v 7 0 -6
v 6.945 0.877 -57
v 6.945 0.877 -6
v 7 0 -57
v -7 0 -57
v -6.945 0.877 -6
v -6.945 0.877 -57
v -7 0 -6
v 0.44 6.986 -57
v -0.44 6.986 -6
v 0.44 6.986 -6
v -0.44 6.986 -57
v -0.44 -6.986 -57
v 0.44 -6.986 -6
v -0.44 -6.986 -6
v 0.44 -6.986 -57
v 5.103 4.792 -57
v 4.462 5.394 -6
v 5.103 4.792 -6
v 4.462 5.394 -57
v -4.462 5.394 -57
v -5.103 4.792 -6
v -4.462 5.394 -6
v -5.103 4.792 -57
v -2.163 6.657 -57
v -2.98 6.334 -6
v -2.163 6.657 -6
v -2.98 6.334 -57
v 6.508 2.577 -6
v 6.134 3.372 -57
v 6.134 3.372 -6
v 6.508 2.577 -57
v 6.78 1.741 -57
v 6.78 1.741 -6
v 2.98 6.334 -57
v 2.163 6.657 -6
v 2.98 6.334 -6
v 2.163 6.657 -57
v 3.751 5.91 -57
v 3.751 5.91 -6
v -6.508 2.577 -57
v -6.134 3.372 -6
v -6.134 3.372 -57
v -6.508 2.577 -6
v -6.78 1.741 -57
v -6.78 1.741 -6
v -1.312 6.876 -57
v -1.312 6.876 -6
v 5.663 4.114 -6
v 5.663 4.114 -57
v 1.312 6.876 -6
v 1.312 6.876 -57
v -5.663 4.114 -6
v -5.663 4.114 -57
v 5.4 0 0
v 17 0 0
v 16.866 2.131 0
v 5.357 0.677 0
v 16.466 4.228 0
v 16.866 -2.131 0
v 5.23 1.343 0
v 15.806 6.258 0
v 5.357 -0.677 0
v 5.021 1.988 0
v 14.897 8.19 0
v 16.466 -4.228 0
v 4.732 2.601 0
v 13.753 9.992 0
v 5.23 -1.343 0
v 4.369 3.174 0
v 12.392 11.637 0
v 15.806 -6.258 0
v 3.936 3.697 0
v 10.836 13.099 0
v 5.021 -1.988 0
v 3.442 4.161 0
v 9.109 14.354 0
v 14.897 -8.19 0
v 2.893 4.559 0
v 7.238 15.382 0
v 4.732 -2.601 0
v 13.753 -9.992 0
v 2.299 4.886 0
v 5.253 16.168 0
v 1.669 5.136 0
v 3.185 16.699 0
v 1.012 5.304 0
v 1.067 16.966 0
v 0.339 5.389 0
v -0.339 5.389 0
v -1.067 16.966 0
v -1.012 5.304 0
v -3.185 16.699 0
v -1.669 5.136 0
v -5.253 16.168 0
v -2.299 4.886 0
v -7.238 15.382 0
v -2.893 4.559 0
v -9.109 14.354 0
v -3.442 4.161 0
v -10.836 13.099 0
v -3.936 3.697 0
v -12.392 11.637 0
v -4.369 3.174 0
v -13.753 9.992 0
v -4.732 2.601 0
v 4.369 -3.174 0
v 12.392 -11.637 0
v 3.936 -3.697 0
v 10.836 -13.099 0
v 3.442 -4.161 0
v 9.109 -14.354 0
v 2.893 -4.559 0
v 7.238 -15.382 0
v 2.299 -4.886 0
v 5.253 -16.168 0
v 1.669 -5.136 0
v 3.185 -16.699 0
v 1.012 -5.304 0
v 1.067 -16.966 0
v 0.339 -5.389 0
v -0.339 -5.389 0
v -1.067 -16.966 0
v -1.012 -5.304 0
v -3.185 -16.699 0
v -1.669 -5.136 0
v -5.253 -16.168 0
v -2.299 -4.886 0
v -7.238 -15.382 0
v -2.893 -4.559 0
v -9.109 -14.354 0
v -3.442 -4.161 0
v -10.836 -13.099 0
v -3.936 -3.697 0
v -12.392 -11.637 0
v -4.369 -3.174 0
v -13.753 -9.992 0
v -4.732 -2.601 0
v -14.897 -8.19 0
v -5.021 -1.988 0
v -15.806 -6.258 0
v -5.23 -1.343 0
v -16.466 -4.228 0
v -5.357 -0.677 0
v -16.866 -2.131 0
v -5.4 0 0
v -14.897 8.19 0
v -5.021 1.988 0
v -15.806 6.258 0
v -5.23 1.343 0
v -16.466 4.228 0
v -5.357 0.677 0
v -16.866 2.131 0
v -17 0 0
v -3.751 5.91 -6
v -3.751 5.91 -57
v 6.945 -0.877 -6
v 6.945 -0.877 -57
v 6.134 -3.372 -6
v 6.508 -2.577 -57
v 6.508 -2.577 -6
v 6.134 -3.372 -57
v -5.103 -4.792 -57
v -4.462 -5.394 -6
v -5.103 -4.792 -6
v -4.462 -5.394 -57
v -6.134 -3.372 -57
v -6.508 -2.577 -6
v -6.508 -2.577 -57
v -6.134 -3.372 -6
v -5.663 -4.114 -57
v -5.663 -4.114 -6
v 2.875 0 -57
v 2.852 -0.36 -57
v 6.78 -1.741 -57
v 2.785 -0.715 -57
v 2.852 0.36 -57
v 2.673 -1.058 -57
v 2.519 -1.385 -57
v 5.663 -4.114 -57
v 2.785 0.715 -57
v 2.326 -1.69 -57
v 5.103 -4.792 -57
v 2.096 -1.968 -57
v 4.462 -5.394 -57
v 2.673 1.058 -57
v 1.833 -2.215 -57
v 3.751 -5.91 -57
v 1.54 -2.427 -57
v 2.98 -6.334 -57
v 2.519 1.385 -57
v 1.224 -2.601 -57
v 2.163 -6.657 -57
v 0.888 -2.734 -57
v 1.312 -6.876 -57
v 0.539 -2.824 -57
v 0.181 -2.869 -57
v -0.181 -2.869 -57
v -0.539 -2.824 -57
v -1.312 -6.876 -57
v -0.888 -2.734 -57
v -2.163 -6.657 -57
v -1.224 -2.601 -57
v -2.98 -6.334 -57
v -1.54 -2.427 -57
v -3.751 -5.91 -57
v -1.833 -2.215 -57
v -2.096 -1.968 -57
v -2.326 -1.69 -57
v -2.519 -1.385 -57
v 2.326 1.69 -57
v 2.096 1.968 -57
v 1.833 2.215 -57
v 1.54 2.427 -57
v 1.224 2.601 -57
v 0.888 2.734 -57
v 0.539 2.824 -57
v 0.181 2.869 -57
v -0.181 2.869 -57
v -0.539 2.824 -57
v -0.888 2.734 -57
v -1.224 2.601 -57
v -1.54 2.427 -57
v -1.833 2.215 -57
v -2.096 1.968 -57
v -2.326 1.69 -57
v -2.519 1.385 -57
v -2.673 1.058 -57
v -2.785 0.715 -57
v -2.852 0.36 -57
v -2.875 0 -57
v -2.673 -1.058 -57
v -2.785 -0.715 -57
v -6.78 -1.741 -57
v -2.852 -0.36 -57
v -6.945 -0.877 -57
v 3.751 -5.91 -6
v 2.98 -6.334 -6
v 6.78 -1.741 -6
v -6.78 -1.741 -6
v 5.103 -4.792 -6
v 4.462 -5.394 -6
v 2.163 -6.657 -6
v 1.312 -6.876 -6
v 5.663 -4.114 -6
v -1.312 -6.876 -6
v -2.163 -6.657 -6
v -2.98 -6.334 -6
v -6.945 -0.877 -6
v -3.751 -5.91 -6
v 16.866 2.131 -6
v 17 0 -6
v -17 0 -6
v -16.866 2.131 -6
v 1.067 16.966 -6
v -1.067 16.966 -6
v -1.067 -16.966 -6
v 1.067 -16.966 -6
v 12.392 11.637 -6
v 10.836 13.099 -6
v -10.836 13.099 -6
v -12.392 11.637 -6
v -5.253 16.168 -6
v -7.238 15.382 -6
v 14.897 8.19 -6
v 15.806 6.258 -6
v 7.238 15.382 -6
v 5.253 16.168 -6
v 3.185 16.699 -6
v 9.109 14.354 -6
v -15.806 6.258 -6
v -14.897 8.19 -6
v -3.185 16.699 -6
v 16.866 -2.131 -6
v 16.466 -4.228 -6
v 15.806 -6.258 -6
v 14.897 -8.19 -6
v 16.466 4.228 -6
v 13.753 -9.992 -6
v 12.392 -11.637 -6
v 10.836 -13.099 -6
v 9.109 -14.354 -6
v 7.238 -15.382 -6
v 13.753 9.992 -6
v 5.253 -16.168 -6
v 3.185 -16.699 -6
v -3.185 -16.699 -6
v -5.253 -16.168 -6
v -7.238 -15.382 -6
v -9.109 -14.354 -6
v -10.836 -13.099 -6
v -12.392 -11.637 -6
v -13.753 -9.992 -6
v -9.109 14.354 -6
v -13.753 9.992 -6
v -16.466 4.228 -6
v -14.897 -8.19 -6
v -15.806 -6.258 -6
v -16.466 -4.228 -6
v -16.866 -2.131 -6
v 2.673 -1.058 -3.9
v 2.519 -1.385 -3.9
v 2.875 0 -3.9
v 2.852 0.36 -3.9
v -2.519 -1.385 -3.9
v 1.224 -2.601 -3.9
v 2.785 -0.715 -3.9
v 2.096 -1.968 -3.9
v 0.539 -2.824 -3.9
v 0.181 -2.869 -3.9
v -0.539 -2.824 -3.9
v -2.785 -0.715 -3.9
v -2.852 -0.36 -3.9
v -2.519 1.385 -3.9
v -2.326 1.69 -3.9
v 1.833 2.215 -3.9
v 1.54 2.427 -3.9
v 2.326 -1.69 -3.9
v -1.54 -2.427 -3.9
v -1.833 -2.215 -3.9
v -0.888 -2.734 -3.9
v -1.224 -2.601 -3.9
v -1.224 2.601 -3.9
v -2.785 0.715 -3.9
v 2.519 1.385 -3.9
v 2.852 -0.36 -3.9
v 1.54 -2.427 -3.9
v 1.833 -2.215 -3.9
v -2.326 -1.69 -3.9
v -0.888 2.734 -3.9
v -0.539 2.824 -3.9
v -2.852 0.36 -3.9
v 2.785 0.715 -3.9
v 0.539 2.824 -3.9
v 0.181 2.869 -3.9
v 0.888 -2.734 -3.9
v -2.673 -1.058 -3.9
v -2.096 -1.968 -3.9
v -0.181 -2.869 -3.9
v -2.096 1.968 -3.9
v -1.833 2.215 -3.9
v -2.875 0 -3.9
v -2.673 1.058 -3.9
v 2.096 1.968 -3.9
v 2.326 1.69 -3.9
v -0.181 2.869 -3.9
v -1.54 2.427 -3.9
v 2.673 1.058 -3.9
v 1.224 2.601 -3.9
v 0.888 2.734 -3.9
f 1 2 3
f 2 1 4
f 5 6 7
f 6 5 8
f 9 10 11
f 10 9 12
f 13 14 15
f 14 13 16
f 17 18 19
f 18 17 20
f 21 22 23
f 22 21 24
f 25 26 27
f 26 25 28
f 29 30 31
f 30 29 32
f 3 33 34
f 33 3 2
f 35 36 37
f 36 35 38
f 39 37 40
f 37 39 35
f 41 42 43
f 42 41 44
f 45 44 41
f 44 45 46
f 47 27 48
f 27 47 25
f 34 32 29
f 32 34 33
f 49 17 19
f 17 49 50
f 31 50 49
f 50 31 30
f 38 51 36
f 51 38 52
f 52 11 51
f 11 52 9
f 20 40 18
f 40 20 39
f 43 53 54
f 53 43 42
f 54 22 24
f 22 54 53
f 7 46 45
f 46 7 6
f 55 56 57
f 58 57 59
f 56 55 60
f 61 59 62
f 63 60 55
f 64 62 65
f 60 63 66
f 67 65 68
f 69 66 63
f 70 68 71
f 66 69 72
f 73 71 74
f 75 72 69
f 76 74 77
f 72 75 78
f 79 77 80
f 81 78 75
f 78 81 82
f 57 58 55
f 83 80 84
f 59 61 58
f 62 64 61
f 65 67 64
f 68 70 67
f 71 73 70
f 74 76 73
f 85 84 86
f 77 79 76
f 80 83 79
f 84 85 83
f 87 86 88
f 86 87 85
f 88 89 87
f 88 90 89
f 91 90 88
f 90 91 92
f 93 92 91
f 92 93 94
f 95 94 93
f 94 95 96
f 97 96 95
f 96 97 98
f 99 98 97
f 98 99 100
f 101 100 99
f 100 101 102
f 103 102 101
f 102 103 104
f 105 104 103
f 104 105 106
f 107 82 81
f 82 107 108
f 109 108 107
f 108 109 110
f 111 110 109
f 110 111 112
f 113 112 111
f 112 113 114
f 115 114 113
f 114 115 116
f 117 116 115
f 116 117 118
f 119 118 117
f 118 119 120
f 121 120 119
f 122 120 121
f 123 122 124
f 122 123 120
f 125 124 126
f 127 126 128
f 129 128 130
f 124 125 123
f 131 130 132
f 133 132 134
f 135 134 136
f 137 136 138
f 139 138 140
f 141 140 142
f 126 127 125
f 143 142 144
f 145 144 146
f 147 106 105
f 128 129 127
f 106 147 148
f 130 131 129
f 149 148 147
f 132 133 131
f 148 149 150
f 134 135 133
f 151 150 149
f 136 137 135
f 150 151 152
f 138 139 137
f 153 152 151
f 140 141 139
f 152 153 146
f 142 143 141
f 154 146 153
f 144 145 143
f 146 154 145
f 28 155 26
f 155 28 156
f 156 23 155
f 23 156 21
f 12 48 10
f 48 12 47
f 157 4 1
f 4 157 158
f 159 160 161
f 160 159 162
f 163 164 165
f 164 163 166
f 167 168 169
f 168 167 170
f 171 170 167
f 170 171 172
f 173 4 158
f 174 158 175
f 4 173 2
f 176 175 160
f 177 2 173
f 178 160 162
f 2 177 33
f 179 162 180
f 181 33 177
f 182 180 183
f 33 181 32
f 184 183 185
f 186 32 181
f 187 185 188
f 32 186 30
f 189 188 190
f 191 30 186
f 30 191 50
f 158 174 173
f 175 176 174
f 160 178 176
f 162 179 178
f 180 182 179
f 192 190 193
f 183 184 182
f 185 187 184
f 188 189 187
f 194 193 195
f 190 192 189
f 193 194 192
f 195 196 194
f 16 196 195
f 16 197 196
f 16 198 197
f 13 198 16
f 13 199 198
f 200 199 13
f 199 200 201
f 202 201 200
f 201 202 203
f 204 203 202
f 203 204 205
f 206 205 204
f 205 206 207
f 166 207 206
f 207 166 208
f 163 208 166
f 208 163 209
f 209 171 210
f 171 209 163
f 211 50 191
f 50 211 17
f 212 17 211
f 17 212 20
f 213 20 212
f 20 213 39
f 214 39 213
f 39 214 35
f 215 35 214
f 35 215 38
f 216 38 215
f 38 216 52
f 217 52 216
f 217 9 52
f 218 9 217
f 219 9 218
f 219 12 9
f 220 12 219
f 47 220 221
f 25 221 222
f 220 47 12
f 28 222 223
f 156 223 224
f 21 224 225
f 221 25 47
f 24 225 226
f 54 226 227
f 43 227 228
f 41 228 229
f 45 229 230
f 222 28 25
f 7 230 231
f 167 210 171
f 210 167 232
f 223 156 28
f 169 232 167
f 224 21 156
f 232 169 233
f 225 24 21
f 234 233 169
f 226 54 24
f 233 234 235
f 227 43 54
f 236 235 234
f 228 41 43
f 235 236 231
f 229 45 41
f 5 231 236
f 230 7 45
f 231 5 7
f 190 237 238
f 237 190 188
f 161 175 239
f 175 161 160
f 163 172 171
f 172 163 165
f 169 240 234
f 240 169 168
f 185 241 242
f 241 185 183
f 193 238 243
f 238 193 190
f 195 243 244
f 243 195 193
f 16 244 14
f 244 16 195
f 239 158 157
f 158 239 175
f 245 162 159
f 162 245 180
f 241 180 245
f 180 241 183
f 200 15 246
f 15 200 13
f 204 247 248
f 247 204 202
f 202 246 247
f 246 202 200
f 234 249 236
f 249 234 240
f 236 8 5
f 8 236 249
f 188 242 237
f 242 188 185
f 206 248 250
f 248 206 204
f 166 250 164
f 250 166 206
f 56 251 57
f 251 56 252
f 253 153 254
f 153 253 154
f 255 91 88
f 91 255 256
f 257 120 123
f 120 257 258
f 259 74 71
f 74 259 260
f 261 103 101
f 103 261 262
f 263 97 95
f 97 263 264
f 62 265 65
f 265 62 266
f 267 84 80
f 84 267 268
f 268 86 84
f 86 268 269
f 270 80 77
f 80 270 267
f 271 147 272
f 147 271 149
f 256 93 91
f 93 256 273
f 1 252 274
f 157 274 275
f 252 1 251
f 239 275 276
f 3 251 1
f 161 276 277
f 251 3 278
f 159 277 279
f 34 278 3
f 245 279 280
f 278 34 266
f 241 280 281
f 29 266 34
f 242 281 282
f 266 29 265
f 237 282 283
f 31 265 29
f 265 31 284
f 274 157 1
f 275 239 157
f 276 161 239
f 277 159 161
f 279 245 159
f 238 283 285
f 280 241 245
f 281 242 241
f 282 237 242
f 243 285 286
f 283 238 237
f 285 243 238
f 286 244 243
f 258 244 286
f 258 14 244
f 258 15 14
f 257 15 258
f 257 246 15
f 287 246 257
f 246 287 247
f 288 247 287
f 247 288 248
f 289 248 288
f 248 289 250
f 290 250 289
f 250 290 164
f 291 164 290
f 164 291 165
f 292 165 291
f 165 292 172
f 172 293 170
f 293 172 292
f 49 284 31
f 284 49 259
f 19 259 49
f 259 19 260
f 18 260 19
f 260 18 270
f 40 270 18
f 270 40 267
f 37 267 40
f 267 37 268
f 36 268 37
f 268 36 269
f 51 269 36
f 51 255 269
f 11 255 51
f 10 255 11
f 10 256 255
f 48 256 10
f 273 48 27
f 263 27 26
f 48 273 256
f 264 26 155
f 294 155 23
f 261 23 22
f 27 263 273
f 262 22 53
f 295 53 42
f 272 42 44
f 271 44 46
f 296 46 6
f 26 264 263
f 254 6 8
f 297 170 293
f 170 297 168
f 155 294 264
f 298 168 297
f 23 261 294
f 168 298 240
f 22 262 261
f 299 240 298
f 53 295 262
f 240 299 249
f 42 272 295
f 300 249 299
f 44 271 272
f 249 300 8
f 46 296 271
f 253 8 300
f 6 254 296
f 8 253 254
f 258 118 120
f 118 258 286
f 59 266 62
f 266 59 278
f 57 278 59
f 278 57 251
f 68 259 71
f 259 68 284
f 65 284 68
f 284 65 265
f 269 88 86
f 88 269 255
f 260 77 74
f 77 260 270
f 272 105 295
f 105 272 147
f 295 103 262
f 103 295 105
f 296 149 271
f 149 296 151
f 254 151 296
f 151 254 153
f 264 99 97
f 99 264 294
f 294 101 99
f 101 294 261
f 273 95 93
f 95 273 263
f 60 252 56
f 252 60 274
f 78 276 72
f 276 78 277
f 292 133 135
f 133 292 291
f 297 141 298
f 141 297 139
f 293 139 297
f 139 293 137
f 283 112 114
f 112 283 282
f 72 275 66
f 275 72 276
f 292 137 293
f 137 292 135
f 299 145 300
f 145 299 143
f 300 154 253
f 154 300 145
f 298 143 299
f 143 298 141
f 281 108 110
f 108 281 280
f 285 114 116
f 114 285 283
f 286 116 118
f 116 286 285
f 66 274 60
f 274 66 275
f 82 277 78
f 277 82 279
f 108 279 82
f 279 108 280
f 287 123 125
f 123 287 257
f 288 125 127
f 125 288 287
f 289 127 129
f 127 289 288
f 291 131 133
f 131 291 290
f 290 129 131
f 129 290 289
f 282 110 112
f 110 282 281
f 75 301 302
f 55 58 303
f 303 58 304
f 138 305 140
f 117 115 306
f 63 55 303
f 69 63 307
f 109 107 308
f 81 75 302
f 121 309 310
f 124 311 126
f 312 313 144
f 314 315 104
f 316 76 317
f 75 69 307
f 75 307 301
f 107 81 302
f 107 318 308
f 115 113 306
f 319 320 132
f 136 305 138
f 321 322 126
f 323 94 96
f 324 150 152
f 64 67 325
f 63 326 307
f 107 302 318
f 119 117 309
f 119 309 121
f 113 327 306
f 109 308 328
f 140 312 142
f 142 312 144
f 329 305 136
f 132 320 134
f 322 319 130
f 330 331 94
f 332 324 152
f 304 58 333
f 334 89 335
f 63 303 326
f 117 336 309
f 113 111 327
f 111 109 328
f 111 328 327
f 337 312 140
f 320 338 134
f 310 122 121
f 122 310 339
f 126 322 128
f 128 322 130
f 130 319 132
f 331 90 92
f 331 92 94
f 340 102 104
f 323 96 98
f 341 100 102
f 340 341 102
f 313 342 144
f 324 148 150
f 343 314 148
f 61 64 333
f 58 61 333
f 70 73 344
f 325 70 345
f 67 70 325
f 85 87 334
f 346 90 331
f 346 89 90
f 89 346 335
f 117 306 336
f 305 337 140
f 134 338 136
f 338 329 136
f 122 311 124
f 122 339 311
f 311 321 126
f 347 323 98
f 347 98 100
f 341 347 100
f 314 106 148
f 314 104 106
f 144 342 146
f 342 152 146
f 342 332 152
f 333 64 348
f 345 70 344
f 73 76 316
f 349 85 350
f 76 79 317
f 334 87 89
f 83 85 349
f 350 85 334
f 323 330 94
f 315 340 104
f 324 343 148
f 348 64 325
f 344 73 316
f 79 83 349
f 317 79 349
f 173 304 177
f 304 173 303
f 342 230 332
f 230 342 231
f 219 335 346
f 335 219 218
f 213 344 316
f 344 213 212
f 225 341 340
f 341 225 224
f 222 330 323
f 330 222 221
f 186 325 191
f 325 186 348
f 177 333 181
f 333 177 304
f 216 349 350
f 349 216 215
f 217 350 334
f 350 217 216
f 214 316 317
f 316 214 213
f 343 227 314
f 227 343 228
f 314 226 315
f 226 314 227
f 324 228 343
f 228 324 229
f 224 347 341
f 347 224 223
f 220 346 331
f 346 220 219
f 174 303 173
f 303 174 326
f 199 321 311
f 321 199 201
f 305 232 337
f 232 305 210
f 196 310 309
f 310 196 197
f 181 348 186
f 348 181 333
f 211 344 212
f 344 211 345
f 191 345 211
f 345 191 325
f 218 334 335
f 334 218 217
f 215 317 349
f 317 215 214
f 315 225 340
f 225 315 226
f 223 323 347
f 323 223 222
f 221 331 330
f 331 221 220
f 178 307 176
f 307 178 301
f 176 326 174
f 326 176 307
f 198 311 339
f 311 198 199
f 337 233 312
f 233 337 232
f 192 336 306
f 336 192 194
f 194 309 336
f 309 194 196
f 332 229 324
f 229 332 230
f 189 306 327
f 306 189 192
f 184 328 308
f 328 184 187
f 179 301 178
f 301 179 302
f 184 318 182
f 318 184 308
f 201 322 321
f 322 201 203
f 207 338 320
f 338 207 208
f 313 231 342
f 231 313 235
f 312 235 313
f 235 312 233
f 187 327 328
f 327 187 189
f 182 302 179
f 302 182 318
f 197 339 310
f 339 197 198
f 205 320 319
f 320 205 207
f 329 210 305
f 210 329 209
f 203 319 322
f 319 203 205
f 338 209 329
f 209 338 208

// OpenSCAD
$fn = 50;


difference() {
	union() {
		translate(v = [0, 0, -57.0000000000]) {
			cylinder(h = 57, r = 7.0000000000);
		}
		translate(v = [0, 0, -6.0000000000]) {
			cylinder(h = 6, r = 17.0000000000);
		}
	}
	union() {
		translate(v = [0, 0, 0]) {
			rotate(a = [0, 0, 0]) {
				difference() {
					union() {
						#translate(v = [0, 0, -57.0000000000]) {
							cylinder(h = 57, r = 2.6000000000);
						}
						#translate(v = [0, 0, -3.9000000000]) {
							cylinder(h = 3.9000000000, r1 = 2.8750000000, r2 = 5.4000000000);
						}
						#translate(v = [0, 0, -57.0000000000]) {
							cylinder(h = 57, r = 2.8750000000);
						}
						#translate(v = [0, 0, -57.0000000000]) {
							cylinder(h = 57, r = 2.6000000000);
						}
					}
					union();
				}
			}
		}
	}
}
